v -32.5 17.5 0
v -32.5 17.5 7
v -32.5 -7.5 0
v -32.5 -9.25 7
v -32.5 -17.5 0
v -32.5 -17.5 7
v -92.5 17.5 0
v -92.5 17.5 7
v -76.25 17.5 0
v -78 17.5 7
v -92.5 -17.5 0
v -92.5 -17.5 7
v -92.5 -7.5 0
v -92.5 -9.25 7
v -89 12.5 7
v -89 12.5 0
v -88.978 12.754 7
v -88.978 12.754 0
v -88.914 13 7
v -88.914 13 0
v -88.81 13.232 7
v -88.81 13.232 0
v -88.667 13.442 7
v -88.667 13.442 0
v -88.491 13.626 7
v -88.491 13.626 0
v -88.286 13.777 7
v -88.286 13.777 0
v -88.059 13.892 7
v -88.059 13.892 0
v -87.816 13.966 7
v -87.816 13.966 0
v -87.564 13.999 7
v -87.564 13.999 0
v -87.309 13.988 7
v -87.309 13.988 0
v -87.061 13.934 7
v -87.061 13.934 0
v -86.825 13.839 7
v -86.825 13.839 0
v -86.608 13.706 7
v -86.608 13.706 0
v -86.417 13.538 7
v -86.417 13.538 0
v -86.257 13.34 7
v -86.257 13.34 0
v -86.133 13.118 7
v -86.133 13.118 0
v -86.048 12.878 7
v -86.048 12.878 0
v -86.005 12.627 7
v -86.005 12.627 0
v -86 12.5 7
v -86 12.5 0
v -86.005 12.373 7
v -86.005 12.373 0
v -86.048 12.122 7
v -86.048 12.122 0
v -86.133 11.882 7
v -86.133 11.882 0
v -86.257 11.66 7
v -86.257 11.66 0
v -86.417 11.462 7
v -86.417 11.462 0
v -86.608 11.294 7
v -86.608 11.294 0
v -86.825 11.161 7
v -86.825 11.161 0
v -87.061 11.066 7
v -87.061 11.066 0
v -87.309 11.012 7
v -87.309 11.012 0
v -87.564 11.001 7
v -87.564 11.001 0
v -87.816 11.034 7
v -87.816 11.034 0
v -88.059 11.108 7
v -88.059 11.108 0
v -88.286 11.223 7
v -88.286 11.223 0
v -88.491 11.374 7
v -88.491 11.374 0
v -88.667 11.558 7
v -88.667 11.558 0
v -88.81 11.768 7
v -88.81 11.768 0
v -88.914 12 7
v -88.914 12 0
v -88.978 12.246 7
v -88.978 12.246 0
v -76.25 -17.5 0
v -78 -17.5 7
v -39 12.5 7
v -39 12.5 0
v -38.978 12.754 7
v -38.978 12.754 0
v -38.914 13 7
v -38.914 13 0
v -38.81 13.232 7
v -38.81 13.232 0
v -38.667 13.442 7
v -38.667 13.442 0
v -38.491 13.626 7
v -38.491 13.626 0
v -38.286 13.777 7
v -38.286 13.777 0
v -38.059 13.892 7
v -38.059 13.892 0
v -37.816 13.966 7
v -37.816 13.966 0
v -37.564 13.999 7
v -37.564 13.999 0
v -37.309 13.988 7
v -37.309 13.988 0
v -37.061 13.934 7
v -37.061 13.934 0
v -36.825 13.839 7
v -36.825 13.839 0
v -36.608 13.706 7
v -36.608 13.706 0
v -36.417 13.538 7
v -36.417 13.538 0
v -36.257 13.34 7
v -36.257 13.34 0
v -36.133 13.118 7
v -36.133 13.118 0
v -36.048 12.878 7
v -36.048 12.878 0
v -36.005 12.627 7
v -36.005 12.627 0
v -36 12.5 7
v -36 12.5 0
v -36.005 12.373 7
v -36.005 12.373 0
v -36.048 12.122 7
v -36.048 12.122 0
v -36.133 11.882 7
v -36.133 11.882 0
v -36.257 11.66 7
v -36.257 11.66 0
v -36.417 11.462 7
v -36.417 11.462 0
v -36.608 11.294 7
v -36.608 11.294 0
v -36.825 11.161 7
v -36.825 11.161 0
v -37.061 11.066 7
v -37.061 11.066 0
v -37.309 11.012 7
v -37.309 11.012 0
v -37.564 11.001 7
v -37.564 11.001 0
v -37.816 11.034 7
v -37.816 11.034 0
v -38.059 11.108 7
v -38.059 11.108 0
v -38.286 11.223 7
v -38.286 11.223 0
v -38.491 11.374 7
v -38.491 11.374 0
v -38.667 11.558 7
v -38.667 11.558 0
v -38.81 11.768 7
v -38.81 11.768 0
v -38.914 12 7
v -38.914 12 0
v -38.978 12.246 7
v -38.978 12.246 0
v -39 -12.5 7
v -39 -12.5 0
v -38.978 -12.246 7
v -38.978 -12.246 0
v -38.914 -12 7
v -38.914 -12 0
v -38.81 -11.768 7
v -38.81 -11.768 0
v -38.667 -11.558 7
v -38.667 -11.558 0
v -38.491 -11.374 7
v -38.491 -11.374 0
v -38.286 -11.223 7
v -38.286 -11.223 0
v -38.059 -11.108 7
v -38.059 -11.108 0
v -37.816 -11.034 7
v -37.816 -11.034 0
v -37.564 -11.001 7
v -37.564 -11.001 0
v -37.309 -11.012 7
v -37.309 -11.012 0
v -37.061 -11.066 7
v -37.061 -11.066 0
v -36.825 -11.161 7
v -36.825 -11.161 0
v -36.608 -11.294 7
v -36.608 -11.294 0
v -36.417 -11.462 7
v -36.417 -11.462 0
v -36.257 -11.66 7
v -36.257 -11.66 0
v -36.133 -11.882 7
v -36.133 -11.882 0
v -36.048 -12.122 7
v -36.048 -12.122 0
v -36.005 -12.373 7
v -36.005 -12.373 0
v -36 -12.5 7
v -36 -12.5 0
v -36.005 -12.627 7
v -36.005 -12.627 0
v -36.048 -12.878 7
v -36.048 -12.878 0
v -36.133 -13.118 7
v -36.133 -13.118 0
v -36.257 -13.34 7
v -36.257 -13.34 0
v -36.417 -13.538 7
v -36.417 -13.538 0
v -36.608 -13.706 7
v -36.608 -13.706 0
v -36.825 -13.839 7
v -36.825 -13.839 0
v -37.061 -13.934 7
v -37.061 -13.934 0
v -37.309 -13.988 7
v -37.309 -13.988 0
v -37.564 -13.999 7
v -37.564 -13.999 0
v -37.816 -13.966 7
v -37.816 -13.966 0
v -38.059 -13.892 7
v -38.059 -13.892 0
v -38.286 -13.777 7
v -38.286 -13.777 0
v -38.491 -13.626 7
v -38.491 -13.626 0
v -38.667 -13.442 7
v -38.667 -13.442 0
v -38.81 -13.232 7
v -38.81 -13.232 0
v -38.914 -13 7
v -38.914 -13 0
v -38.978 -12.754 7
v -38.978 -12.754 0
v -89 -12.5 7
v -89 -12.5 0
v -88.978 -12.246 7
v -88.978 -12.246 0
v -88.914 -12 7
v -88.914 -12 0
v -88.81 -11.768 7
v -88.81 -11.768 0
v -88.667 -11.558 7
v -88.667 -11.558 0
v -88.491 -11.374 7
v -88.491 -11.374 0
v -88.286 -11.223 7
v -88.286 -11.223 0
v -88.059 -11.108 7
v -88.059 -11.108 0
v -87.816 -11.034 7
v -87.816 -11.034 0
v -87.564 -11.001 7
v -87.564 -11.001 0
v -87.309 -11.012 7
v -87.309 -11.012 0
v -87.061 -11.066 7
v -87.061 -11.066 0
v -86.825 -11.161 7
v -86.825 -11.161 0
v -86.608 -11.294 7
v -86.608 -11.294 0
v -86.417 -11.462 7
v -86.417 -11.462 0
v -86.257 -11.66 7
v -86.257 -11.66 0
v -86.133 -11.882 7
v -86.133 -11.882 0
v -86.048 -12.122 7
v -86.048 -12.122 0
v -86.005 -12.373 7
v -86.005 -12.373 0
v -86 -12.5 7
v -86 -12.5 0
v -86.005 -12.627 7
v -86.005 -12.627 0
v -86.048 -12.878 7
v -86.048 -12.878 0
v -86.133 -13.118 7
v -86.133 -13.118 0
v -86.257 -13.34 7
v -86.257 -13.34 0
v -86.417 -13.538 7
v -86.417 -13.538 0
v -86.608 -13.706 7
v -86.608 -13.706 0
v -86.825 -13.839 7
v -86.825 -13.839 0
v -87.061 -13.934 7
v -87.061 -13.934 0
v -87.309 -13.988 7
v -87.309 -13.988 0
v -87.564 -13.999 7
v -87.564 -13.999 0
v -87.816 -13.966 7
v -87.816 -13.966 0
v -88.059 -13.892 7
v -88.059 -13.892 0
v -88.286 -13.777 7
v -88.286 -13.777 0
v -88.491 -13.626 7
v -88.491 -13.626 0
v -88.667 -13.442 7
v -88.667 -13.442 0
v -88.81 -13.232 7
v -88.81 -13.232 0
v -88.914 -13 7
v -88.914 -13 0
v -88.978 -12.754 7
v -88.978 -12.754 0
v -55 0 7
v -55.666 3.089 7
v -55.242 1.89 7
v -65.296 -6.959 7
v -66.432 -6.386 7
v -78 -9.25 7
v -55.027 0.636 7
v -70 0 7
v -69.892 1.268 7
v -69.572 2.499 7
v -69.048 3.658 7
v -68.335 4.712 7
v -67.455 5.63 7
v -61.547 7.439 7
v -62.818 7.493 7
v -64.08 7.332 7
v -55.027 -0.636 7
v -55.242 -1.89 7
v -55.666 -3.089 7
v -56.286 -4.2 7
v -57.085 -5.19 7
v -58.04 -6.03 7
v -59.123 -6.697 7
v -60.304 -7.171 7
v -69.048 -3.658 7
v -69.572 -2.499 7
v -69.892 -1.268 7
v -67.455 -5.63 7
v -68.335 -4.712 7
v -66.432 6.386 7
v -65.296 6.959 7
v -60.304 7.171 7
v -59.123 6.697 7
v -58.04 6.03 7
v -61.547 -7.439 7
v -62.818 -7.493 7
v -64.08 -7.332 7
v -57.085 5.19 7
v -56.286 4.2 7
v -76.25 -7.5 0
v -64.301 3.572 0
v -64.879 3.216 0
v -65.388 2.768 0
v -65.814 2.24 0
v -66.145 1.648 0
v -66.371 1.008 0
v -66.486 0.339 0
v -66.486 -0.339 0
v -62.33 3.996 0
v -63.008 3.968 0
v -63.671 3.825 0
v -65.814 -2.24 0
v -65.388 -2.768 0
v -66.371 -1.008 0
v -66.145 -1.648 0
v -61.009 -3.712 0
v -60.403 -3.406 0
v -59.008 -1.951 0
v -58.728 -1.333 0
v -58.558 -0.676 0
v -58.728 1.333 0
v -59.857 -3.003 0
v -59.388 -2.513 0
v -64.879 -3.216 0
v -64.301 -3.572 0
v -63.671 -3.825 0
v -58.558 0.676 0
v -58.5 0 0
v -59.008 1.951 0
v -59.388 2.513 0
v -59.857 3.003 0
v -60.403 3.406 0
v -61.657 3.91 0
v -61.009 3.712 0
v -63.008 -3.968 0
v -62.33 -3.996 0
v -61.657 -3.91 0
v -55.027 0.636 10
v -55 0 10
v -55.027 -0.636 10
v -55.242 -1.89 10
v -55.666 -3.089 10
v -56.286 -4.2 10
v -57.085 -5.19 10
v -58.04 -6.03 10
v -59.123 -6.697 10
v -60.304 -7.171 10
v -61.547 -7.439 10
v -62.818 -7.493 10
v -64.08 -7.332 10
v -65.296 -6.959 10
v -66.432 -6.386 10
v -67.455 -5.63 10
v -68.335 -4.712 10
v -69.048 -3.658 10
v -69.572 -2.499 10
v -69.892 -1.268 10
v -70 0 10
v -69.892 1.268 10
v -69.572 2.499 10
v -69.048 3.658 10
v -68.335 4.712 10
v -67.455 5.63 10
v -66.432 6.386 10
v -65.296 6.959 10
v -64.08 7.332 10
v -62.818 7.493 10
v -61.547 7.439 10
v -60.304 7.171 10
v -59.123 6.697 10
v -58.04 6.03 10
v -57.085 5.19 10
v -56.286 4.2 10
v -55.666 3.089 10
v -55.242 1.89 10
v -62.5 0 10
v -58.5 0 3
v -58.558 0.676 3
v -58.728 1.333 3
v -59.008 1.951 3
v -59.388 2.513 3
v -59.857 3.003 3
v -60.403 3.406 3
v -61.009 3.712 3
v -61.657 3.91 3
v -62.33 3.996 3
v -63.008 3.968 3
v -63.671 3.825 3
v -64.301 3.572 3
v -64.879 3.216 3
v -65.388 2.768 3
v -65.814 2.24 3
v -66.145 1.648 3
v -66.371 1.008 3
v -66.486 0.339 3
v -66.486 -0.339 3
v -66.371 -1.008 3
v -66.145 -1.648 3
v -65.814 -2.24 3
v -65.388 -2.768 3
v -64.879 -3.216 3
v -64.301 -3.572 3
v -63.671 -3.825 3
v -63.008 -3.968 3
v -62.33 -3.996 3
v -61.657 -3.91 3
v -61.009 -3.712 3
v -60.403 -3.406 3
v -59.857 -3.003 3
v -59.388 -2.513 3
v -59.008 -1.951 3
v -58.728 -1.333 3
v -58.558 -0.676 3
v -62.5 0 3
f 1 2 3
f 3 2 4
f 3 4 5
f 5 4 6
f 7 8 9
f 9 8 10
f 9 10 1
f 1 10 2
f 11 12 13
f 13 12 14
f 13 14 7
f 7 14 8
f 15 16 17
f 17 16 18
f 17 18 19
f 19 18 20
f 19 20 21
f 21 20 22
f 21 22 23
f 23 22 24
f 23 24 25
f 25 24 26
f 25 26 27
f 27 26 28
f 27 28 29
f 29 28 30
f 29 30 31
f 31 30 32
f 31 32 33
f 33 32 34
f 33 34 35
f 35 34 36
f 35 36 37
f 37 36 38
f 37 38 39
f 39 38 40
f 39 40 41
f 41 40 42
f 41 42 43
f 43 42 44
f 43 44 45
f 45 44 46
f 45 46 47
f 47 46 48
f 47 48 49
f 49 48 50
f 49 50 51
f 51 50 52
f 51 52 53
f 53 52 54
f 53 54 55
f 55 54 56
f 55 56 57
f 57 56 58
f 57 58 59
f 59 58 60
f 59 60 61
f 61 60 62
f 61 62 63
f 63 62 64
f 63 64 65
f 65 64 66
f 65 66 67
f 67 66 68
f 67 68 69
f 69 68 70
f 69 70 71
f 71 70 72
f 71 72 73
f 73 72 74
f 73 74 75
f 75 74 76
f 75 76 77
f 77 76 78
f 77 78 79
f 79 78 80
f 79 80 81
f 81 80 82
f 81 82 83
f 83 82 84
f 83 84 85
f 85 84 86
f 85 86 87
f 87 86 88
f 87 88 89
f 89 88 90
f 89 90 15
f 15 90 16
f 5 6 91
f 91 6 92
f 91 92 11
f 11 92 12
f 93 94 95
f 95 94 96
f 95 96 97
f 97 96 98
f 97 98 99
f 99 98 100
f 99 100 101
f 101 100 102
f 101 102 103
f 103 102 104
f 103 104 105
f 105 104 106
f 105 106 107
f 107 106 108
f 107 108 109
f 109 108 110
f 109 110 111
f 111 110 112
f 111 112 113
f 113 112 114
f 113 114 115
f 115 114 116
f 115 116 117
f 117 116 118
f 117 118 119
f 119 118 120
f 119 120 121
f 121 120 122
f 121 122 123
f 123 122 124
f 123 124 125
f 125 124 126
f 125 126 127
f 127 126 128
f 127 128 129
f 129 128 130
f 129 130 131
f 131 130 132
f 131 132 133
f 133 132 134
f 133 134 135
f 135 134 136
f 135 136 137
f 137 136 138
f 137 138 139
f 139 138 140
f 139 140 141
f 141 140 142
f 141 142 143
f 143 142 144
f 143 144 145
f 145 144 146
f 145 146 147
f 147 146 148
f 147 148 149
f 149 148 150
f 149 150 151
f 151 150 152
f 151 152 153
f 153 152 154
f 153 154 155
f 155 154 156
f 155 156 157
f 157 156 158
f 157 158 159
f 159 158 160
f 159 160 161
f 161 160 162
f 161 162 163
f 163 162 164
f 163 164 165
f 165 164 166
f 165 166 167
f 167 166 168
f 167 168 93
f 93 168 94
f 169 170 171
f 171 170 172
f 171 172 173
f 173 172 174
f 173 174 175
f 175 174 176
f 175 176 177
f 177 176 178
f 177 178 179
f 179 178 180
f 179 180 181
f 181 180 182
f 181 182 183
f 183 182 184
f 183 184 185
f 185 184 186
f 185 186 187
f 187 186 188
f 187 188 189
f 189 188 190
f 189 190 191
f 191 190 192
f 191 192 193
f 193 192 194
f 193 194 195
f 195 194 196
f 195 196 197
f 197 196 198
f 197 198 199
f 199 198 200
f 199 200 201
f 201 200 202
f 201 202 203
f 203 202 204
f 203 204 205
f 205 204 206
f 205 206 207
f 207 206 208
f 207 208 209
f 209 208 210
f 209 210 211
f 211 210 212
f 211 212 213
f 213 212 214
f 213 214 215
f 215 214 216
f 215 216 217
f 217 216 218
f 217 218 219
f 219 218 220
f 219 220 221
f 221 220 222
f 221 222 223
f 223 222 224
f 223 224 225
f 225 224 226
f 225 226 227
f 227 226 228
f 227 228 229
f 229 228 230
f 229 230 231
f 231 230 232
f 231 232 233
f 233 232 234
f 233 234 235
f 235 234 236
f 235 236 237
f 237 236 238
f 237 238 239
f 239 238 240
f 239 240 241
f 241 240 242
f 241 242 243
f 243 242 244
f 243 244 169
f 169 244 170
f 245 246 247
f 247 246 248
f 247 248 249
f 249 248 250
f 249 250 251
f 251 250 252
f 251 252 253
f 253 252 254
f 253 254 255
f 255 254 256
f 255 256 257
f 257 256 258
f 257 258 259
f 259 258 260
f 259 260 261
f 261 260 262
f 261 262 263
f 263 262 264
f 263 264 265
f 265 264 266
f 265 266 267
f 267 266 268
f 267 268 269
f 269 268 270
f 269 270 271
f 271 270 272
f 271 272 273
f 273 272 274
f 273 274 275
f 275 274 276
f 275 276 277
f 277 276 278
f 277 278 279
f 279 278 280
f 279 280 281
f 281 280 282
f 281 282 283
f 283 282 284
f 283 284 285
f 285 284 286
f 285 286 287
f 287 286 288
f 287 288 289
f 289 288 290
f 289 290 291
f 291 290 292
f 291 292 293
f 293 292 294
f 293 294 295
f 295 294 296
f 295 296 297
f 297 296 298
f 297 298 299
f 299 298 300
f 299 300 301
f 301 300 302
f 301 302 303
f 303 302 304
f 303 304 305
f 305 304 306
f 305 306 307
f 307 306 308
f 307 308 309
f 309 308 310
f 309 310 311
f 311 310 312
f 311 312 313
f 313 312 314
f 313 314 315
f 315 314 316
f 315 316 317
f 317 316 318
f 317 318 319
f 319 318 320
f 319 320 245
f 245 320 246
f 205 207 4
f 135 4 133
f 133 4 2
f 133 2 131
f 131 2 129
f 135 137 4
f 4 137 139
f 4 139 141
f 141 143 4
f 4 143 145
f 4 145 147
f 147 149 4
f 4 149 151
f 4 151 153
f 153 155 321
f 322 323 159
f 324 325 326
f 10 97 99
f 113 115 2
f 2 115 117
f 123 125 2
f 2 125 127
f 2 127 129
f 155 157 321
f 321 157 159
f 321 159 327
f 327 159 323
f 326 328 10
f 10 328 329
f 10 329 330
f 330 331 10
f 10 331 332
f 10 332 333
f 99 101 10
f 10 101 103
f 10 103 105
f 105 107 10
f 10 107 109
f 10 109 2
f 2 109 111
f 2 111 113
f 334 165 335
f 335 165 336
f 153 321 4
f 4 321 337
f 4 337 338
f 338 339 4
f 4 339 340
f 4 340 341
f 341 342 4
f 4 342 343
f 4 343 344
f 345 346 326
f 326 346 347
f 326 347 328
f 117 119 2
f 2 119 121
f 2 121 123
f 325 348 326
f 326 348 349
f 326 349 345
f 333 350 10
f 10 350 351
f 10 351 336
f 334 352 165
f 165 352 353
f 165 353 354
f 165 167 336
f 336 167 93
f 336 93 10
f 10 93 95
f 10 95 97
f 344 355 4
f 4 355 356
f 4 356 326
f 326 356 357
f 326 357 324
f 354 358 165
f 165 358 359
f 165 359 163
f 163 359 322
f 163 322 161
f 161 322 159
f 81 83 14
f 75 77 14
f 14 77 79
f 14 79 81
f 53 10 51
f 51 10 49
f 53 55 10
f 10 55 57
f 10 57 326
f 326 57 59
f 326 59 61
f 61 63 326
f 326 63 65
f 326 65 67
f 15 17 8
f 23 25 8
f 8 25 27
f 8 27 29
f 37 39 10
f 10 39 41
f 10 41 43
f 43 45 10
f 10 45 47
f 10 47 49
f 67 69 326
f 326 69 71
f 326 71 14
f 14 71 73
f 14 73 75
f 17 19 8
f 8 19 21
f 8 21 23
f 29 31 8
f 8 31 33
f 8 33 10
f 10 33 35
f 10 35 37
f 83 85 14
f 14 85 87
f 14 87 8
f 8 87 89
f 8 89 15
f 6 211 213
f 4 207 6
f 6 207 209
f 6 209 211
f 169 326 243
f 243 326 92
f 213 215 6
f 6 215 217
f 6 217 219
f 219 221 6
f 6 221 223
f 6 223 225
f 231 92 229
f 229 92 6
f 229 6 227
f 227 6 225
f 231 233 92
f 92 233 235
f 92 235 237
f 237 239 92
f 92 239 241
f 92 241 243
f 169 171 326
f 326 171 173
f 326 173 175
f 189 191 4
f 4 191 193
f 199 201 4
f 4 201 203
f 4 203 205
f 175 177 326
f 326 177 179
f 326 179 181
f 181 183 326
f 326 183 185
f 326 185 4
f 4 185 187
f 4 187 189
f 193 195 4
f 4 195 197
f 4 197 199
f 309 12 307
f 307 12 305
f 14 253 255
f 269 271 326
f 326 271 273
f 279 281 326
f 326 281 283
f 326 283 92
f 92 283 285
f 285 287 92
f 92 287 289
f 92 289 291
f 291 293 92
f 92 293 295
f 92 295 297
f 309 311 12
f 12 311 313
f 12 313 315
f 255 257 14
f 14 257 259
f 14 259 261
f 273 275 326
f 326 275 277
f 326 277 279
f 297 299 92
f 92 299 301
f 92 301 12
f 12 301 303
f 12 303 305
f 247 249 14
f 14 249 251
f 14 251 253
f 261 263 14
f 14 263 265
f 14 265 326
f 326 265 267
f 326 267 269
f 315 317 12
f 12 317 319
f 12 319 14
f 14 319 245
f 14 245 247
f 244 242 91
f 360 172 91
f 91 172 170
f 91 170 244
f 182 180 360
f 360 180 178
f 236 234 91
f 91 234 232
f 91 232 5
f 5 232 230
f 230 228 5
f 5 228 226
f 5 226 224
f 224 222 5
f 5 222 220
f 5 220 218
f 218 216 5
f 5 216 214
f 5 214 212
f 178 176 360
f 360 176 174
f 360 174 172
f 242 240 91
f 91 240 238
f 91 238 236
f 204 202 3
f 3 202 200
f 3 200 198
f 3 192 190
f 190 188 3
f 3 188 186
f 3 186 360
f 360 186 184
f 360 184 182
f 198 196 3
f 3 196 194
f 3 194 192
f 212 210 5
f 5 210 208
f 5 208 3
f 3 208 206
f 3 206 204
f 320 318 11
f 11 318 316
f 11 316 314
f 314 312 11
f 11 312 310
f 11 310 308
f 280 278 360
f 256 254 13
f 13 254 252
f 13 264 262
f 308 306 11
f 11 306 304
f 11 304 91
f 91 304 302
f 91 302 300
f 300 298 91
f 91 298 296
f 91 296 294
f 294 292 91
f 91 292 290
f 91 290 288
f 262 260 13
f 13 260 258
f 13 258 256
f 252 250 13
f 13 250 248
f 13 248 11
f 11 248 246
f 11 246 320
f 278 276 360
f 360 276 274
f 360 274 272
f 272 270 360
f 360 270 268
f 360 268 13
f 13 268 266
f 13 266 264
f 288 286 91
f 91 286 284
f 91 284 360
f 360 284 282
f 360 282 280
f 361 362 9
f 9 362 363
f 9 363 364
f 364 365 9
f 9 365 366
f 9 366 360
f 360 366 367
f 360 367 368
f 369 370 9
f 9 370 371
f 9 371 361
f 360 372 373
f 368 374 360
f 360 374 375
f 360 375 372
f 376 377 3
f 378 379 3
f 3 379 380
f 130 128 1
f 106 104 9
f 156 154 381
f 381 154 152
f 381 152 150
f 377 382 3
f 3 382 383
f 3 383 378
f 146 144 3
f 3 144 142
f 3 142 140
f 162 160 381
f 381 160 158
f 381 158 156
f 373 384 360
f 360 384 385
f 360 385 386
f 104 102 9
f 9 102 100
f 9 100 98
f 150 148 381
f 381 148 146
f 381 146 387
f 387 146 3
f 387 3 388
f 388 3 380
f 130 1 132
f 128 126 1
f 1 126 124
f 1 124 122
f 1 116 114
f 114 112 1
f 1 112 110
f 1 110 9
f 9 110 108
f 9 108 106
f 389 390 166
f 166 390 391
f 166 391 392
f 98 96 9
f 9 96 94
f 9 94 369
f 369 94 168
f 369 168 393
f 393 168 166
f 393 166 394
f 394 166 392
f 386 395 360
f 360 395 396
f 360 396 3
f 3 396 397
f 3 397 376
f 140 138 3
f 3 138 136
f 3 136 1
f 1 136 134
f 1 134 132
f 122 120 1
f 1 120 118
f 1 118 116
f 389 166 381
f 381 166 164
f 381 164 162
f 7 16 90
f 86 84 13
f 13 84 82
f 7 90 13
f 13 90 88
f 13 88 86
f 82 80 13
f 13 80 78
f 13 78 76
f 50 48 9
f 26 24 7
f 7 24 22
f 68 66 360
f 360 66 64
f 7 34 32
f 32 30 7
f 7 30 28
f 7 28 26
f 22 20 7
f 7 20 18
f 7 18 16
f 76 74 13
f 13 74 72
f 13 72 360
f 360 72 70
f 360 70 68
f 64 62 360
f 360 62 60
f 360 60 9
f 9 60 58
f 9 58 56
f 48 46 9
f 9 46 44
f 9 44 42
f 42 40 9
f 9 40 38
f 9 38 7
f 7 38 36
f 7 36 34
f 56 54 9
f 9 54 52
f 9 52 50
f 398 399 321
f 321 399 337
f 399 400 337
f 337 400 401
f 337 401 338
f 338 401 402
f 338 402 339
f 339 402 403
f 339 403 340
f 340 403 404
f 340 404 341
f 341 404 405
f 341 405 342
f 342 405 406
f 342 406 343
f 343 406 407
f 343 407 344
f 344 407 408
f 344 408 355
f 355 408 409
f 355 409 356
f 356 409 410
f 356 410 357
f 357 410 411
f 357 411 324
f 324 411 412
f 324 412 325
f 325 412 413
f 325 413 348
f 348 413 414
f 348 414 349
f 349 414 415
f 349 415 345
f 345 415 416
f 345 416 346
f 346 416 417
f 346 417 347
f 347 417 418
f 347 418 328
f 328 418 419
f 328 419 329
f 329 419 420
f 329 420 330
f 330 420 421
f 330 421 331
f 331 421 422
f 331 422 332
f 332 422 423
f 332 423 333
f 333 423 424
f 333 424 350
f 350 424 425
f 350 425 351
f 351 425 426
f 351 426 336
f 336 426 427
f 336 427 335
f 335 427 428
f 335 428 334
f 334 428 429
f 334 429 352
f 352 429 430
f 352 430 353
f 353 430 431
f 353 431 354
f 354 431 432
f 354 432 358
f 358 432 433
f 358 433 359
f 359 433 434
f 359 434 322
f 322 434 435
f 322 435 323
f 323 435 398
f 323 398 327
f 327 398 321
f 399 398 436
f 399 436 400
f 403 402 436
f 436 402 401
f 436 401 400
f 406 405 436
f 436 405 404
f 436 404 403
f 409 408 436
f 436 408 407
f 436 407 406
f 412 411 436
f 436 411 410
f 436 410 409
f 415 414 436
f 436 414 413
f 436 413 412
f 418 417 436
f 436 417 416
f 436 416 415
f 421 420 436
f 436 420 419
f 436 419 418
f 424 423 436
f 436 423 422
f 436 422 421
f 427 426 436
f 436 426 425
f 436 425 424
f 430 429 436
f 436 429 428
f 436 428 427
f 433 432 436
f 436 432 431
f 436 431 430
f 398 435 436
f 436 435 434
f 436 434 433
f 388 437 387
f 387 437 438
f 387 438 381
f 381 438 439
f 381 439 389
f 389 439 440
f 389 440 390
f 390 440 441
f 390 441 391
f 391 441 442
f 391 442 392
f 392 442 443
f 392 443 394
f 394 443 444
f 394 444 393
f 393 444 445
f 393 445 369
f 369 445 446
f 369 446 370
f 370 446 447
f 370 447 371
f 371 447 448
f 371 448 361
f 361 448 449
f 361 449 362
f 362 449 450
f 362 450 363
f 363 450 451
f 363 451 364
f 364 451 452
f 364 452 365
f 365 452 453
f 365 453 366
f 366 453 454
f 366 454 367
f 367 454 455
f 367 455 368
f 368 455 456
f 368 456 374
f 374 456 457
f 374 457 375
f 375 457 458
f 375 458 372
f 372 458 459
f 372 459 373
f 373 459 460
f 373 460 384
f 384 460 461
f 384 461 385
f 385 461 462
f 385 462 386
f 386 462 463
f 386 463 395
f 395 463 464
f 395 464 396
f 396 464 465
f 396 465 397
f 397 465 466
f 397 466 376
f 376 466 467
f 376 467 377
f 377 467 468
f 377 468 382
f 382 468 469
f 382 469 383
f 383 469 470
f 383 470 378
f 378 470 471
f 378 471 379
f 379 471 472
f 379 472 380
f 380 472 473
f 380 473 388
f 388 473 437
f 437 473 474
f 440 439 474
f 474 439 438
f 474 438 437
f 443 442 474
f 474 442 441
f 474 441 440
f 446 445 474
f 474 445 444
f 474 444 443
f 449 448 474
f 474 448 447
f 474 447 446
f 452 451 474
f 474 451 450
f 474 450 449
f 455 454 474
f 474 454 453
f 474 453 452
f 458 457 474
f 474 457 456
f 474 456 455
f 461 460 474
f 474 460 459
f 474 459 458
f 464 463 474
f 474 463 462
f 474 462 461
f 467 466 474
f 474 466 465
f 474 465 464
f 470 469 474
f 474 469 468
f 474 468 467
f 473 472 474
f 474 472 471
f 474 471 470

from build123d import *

# Parameters (mm, degrees)
SKETCH1_R               = 1.5
BOSS_EXTRUDE1_DEPTH     = 7
SKETCH5_R               = 7.5
BOSS_EXTRUDE5_DEPTH     = 3
CUT_EXTRUDE1_DEPTH      = 3
CUT_EXTRUDE1_DEPTH_BACK = 3
SKETCH1_3_R             = 4


with BuildPart() as part:
    # Sketch1 → Boss-Extrude1 (new body)
    with BuildSketch(Plane.XY):
        Polygon((-32.5, 17.5), (-92.5, 17.5), (-92.5, 0), (-92.5, -17.5), (-32.5, -17.5), align=None)
        with Locations((-87.5, -12.5)):
            Circle(SKETCH1_R, mode=Mode.SUBTRACT)
        with Locations((-37.5, -12.5)):
            Circle(SKETCH1_R, mode=Mode.SUBTRACT)
        with Locations((-87.5, 12.5)):
            Circle(SKETCH1_R, mode=Mode.SUBTRACT)
        with Locations((-37.5, 12.5)):
            Circle(SKETCH1_R, mode=Mode.SUBTRACT)
    extrude(amount=BOSS_EXTRUDE1_DEPTH)

    # Sketch5 → Boss-Extrude5 (add)
    with BuildSketch(Plane.XY.offset(7)):
        with Locations((-62.5, 0)):
            Circle(SKETCH5_R)
    extrude(amount=BOSS_EXTRUDE5_DEPTH)

    # Sketch1<3> → Cut-Extrude1 (cut, two sides: drawn at the far end of the back side and taken through both)
    with BuildSketch(Plane.XY.offset(-CUT_EXTRUDE1_DEPTH_BACK)):
        with Locations((-62.5, 0)):
            Circle(SKETCH1_3_R)
    extrude(amount=CUT_EXTRUDE1_DEPTH + CUT_EXTRUDE1_DEPTH_BACK, mode=Mode.SUBTRACT)


solid = part.part
